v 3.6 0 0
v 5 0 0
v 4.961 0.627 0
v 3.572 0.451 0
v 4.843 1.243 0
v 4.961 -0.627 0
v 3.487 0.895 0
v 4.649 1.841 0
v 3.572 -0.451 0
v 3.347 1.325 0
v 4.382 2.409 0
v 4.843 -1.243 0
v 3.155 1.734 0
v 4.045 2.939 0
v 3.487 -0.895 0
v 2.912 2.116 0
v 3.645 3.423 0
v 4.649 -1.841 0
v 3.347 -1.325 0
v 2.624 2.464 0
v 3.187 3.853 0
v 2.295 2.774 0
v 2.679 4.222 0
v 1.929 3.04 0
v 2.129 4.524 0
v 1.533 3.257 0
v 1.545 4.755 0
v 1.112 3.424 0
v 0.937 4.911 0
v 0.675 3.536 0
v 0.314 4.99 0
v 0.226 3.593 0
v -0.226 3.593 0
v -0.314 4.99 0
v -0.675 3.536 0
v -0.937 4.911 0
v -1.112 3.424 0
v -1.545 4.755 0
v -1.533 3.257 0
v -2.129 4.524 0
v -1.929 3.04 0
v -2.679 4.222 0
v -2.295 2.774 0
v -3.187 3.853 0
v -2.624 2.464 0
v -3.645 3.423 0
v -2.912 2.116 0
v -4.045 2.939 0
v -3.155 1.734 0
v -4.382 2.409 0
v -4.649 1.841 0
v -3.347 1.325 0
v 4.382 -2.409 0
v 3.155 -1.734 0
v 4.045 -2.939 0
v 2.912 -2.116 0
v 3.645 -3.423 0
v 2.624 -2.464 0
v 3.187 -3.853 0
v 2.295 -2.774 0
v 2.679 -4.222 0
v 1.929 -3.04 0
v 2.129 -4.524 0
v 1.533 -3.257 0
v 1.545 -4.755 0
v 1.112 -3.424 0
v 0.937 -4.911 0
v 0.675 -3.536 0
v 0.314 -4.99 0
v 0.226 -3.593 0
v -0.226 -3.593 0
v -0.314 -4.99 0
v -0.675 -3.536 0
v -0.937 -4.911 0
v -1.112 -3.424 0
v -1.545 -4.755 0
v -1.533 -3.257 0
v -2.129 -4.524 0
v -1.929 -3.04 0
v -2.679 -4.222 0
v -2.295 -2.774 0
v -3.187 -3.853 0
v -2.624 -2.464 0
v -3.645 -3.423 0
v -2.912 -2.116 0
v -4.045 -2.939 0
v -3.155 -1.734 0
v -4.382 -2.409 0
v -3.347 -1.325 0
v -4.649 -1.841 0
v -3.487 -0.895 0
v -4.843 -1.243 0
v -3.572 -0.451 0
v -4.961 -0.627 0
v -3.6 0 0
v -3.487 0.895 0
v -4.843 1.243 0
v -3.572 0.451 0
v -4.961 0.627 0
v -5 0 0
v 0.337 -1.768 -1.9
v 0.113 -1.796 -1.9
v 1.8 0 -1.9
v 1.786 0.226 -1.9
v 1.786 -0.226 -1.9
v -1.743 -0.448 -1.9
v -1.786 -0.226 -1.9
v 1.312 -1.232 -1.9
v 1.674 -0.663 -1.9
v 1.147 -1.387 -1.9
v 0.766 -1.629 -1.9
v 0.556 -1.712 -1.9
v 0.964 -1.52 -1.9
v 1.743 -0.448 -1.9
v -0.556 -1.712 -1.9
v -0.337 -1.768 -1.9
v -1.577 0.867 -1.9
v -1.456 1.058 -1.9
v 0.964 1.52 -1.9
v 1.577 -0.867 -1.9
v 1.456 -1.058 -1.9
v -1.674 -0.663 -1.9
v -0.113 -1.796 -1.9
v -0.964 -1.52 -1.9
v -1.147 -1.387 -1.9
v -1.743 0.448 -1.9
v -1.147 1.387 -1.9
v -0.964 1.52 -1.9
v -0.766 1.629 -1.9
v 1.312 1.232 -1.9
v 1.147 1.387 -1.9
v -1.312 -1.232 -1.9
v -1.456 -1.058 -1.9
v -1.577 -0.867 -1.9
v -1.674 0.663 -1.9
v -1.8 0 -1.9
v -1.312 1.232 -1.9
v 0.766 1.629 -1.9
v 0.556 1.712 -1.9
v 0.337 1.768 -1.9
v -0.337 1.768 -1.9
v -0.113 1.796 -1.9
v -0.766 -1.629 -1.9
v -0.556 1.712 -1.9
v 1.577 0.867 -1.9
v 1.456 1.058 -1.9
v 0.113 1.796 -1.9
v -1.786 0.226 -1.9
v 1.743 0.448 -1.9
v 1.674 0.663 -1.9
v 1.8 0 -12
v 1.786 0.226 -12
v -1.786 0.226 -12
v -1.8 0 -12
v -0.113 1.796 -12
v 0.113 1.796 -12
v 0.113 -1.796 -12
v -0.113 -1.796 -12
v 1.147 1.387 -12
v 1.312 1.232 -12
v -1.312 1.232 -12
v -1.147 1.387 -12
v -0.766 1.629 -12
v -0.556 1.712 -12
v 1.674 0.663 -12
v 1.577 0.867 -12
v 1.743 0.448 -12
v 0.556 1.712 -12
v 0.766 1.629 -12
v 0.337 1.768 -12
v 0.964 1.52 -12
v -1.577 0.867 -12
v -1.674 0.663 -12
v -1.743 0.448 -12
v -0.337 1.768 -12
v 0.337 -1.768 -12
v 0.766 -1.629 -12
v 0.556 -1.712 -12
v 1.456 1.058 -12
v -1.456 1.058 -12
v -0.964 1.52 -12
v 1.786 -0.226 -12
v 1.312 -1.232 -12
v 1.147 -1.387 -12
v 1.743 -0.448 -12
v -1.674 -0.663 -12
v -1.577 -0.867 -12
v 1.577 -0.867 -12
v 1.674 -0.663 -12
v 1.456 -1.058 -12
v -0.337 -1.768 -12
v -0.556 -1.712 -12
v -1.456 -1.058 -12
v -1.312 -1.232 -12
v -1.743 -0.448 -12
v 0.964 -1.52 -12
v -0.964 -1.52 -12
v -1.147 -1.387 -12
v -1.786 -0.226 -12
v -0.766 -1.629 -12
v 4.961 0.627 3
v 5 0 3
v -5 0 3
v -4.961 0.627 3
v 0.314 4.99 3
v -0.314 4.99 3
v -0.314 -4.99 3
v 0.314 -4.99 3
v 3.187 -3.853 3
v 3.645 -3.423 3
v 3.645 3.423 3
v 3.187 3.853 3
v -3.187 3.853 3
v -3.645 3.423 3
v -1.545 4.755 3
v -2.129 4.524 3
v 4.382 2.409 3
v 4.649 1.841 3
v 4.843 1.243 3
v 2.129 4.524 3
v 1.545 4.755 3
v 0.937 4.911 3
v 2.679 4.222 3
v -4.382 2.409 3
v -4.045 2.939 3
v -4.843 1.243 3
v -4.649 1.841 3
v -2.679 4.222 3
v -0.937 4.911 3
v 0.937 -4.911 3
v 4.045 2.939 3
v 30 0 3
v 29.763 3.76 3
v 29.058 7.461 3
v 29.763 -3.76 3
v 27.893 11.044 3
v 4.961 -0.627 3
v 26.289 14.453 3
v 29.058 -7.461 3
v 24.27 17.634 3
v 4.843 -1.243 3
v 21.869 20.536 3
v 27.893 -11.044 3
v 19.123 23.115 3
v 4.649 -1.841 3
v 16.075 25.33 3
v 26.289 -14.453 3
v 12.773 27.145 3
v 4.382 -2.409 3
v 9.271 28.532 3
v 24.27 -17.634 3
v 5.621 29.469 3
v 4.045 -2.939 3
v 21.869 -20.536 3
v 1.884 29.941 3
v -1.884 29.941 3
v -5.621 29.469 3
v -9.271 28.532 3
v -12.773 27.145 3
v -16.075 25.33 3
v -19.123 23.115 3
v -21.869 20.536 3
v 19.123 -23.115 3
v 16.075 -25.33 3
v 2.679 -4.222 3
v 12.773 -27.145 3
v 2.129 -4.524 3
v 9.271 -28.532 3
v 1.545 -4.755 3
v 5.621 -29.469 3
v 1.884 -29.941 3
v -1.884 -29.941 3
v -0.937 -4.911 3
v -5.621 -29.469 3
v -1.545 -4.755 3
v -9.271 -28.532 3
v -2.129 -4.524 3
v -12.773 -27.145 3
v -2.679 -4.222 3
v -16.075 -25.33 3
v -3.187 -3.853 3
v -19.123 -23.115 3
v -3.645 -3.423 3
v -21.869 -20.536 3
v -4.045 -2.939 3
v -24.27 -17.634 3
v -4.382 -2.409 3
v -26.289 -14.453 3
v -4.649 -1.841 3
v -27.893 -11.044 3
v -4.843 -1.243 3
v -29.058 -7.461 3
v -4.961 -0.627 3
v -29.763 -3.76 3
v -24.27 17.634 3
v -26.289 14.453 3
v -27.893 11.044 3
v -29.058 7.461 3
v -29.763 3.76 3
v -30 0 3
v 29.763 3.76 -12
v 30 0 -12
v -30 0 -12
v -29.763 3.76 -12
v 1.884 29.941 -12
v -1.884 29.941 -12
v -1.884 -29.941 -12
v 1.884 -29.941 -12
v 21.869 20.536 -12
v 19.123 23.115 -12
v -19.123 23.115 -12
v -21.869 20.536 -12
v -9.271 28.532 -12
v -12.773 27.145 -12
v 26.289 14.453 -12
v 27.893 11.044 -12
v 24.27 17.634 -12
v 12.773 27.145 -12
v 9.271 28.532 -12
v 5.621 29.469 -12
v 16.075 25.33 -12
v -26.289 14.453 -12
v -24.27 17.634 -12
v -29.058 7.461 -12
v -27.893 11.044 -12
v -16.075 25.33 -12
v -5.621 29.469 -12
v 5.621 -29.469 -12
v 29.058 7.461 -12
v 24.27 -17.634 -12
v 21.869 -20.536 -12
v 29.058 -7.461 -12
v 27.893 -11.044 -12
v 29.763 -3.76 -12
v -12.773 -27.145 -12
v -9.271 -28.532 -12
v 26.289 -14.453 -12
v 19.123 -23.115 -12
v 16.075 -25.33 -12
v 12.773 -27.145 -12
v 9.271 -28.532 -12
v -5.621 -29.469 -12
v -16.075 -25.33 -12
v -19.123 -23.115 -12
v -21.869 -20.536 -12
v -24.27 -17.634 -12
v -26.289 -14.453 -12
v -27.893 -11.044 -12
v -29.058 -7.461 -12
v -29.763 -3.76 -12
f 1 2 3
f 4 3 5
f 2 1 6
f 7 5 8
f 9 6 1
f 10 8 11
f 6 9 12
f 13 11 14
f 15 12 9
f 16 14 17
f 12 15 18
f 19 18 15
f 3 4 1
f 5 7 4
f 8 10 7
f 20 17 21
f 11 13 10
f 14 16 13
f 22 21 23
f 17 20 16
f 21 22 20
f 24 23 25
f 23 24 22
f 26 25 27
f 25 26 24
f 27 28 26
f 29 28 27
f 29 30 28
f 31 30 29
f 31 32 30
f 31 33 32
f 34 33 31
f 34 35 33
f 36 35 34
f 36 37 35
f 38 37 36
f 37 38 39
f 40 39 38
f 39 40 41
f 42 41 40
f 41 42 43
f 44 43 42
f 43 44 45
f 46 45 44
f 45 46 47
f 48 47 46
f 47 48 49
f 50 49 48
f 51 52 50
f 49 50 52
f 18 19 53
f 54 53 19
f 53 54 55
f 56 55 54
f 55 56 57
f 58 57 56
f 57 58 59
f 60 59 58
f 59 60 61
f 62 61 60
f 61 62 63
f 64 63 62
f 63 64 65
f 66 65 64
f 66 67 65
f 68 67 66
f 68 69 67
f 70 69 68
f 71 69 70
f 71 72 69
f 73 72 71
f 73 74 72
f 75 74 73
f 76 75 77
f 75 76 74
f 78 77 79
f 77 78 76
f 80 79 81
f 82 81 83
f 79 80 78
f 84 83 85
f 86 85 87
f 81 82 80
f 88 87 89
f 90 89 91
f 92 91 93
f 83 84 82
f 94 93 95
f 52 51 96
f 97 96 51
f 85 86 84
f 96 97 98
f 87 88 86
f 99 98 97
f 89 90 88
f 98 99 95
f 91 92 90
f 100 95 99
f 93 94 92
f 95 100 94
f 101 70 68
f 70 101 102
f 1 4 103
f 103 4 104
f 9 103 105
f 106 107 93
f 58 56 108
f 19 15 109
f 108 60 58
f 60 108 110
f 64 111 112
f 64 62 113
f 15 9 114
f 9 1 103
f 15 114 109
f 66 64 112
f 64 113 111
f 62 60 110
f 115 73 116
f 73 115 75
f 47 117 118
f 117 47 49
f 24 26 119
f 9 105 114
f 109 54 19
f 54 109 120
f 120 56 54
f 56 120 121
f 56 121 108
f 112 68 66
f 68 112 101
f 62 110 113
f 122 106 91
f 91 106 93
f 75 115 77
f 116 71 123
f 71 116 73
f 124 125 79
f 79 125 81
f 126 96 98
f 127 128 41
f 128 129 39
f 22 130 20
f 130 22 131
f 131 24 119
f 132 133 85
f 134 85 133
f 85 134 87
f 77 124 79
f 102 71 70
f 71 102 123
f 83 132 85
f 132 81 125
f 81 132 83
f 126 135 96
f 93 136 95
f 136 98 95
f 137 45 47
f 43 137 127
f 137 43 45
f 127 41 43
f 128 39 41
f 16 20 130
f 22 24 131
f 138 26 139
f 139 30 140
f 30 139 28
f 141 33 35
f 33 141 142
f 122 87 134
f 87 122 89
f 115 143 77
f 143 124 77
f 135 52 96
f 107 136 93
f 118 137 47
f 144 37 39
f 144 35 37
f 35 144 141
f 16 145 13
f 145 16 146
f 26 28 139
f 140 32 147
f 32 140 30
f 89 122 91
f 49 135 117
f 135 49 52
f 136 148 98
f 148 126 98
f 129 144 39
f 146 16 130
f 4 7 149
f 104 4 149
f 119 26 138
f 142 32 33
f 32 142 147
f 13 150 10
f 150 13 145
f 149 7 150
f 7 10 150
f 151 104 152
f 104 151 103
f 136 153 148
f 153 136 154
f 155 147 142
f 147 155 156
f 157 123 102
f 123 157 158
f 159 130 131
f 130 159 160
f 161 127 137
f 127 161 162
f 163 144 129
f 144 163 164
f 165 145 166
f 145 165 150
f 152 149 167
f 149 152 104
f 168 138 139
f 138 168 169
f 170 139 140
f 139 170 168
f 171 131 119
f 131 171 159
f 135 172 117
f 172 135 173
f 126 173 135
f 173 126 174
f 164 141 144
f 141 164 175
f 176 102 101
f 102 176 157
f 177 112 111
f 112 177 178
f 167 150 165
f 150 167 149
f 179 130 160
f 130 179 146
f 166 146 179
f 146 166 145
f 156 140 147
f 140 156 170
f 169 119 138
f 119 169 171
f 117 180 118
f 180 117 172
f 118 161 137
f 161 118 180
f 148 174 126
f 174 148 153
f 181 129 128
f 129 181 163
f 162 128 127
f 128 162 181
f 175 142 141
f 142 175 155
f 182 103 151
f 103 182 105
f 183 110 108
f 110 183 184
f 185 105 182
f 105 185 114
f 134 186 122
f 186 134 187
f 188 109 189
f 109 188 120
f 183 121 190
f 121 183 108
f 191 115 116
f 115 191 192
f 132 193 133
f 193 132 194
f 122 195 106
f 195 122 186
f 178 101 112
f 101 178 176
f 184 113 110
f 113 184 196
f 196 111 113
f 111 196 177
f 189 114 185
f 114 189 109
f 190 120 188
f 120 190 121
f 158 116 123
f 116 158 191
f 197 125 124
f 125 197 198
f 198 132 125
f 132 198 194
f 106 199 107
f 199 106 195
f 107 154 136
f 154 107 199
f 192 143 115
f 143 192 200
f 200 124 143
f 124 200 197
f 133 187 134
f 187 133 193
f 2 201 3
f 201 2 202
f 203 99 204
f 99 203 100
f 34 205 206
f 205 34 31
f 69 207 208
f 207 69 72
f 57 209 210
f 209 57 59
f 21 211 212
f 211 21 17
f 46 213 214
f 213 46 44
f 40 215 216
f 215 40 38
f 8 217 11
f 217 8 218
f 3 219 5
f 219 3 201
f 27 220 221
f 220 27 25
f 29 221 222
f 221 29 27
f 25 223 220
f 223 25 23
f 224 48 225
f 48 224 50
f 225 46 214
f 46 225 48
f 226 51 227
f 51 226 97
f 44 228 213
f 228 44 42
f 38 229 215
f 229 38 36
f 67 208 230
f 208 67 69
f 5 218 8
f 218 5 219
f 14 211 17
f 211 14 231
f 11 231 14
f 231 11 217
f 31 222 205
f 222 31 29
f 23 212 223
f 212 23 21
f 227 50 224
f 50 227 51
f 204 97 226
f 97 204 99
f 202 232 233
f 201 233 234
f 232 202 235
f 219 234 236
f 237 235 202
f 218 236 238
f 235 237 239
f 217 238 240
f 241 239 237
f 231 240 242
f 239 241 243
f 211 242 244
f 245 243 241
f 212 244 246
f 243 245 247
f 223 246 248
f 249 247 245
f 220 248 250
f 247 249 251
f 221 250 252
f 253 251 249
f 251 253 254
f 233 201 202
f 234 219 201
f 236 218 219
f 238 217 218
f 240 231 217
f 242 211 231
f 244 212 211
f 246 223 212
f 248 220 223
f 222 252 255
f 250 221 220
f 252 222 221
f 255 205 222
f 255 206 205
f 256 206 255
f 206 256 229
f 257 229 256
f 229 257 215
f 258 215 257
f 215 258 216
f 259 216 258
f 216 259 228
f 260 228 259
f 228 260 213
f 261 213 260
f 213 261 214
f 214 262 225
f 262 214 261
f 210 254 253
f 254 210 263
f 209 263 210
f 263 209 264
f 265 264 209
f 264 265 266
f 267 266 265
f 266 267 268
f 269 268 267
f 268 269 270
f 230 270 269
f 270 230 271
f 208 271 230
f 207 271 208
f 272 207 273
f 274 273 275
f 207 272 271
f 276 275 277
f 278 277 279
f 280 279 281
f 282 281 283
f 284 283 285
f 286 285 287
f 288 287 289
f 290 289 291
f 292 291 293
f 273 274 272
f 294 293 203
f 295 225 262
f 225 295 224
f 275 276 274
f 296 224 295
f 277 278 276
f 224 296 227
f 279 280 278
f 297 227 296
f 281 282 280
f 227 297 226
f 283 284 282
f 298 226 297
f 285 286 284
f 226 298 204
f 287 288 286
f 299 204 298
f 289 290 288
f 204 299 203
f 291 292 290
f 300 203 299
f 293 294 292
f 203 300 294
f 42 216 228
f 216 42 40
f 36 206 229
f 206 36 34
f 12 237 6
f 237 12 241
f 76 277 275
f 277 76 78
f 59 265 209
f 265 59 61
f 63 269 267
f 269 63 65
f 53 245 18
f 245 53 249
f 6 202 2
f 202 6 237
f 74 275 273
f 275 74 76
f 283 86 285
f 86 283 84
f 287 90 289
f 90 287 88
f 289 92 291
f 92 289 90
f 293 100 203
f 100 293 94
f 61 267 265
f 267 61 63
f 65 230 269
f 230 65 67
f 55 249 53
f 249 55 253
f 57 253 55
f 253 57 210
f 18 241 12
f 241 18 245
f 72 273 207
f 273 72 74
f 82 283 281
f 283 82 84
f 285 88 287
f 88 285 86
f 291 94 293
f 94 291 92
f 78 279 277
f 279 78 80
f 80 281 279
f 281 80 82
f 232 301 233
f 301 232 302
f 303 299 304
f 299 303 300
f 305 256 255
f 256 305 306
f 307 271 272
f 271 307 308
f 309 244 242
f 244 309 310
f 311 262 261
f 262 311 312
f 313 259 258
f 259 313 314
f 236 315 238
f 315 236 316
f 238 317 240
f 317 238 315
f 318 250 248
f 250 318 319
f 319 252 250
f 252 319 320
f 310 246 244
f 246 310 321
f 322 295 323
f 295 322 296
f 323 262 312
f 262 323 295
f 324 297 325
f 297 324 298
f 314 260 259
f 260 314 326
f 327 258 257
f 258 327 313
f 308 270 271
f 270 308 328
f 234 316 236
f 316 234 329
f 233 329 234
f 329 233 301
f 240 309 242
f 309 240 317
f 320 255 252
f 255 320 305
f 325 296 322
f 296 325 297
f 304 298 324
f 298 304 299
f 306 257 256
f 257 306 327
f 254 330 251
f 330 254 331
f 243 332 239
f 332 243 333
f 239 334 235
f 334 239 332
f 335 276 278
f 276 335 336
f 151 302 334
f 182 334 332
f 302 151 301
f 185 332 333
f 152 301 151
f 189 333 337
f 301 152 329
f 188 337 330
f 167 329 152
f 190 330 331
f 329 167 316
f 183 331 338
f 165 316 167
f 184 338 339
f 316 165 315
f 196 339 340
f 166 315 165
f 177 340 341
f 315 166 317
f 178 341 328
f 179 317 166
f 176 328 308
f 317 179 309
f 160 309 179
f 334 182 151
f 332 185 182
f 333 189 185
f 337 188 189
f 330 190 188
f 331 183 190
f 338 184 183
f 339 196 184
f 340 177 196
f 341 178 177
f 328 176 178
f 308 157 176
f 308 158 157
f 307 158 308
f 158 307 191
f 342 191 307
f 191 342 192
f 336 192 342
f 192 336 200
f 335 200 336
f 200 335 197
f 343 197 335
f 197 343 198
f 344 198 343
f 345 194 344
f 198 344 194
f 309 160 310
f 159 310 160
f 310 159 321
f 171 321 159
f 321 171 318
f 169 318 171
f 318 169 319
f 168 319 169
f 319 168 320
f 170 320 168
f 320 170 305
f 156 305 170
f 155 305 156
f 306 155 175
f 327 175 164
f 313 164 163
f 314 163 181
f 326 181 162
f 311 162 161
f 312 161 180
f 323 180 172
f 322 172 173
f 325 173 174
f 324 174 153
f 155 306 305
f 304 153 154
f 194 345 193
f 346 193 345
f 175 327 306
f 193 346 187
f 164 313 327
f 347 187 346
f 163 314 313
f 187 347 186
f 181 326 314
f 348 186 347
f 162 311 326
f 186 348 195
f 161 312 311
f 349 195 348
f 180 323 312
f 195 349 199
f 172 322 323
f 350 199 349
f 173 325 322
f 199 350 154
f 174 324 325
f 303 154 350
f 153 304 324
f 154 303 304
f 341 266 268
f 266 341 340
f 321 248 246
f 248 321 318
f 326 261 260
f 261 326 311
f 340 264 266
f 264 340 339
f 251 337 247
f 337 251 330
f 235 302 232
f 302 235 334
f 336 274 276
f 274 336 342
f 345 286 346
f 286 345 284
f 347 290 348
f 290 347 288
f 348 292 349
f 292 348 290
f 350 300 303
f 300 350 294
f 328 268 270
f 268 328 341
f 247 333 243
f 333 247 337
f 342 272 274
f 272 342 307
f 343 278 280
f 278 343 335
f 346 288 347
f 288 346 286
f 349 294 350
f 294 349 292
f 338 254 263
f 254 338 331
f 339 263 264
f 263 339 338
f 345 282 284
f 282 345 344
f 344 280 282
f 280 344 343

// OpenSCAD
$fn = 50;


difference() {
	union() {
		translate(v = [0, 0, -12.0000000000]) {
			cylinder(h = 15, r = 30.0000000000);
		}
	}
	union() {
		translate(v = [0, 0, 0]) {
			rotate(a = [0, 0, 0]) {
				difference() {
					union() {
						translate(v = [0, 0, -15.0000000000]) {
							cylinder(h = 15, r = 1.5000000000);
						}
						translate(v = [0, 0, -1.9000000000]) {
							cylinder(h = 1.9000000000, r1 = 1.8000000000, r2 = 3.6000000000);
						}
						translate(v = [0, 0, -15.0000000000]) {
							cylinder(h = 15, r = 1.8000000000);
						}
						translate(v = [0, 0, -15.0000000000]) {
							cylinder(h = 15, r = 1.5000000000);
						}
					}
					union();
				}
			}
		}
		#cylinder(h = 3, r = 5.0000000000);
	}
}
